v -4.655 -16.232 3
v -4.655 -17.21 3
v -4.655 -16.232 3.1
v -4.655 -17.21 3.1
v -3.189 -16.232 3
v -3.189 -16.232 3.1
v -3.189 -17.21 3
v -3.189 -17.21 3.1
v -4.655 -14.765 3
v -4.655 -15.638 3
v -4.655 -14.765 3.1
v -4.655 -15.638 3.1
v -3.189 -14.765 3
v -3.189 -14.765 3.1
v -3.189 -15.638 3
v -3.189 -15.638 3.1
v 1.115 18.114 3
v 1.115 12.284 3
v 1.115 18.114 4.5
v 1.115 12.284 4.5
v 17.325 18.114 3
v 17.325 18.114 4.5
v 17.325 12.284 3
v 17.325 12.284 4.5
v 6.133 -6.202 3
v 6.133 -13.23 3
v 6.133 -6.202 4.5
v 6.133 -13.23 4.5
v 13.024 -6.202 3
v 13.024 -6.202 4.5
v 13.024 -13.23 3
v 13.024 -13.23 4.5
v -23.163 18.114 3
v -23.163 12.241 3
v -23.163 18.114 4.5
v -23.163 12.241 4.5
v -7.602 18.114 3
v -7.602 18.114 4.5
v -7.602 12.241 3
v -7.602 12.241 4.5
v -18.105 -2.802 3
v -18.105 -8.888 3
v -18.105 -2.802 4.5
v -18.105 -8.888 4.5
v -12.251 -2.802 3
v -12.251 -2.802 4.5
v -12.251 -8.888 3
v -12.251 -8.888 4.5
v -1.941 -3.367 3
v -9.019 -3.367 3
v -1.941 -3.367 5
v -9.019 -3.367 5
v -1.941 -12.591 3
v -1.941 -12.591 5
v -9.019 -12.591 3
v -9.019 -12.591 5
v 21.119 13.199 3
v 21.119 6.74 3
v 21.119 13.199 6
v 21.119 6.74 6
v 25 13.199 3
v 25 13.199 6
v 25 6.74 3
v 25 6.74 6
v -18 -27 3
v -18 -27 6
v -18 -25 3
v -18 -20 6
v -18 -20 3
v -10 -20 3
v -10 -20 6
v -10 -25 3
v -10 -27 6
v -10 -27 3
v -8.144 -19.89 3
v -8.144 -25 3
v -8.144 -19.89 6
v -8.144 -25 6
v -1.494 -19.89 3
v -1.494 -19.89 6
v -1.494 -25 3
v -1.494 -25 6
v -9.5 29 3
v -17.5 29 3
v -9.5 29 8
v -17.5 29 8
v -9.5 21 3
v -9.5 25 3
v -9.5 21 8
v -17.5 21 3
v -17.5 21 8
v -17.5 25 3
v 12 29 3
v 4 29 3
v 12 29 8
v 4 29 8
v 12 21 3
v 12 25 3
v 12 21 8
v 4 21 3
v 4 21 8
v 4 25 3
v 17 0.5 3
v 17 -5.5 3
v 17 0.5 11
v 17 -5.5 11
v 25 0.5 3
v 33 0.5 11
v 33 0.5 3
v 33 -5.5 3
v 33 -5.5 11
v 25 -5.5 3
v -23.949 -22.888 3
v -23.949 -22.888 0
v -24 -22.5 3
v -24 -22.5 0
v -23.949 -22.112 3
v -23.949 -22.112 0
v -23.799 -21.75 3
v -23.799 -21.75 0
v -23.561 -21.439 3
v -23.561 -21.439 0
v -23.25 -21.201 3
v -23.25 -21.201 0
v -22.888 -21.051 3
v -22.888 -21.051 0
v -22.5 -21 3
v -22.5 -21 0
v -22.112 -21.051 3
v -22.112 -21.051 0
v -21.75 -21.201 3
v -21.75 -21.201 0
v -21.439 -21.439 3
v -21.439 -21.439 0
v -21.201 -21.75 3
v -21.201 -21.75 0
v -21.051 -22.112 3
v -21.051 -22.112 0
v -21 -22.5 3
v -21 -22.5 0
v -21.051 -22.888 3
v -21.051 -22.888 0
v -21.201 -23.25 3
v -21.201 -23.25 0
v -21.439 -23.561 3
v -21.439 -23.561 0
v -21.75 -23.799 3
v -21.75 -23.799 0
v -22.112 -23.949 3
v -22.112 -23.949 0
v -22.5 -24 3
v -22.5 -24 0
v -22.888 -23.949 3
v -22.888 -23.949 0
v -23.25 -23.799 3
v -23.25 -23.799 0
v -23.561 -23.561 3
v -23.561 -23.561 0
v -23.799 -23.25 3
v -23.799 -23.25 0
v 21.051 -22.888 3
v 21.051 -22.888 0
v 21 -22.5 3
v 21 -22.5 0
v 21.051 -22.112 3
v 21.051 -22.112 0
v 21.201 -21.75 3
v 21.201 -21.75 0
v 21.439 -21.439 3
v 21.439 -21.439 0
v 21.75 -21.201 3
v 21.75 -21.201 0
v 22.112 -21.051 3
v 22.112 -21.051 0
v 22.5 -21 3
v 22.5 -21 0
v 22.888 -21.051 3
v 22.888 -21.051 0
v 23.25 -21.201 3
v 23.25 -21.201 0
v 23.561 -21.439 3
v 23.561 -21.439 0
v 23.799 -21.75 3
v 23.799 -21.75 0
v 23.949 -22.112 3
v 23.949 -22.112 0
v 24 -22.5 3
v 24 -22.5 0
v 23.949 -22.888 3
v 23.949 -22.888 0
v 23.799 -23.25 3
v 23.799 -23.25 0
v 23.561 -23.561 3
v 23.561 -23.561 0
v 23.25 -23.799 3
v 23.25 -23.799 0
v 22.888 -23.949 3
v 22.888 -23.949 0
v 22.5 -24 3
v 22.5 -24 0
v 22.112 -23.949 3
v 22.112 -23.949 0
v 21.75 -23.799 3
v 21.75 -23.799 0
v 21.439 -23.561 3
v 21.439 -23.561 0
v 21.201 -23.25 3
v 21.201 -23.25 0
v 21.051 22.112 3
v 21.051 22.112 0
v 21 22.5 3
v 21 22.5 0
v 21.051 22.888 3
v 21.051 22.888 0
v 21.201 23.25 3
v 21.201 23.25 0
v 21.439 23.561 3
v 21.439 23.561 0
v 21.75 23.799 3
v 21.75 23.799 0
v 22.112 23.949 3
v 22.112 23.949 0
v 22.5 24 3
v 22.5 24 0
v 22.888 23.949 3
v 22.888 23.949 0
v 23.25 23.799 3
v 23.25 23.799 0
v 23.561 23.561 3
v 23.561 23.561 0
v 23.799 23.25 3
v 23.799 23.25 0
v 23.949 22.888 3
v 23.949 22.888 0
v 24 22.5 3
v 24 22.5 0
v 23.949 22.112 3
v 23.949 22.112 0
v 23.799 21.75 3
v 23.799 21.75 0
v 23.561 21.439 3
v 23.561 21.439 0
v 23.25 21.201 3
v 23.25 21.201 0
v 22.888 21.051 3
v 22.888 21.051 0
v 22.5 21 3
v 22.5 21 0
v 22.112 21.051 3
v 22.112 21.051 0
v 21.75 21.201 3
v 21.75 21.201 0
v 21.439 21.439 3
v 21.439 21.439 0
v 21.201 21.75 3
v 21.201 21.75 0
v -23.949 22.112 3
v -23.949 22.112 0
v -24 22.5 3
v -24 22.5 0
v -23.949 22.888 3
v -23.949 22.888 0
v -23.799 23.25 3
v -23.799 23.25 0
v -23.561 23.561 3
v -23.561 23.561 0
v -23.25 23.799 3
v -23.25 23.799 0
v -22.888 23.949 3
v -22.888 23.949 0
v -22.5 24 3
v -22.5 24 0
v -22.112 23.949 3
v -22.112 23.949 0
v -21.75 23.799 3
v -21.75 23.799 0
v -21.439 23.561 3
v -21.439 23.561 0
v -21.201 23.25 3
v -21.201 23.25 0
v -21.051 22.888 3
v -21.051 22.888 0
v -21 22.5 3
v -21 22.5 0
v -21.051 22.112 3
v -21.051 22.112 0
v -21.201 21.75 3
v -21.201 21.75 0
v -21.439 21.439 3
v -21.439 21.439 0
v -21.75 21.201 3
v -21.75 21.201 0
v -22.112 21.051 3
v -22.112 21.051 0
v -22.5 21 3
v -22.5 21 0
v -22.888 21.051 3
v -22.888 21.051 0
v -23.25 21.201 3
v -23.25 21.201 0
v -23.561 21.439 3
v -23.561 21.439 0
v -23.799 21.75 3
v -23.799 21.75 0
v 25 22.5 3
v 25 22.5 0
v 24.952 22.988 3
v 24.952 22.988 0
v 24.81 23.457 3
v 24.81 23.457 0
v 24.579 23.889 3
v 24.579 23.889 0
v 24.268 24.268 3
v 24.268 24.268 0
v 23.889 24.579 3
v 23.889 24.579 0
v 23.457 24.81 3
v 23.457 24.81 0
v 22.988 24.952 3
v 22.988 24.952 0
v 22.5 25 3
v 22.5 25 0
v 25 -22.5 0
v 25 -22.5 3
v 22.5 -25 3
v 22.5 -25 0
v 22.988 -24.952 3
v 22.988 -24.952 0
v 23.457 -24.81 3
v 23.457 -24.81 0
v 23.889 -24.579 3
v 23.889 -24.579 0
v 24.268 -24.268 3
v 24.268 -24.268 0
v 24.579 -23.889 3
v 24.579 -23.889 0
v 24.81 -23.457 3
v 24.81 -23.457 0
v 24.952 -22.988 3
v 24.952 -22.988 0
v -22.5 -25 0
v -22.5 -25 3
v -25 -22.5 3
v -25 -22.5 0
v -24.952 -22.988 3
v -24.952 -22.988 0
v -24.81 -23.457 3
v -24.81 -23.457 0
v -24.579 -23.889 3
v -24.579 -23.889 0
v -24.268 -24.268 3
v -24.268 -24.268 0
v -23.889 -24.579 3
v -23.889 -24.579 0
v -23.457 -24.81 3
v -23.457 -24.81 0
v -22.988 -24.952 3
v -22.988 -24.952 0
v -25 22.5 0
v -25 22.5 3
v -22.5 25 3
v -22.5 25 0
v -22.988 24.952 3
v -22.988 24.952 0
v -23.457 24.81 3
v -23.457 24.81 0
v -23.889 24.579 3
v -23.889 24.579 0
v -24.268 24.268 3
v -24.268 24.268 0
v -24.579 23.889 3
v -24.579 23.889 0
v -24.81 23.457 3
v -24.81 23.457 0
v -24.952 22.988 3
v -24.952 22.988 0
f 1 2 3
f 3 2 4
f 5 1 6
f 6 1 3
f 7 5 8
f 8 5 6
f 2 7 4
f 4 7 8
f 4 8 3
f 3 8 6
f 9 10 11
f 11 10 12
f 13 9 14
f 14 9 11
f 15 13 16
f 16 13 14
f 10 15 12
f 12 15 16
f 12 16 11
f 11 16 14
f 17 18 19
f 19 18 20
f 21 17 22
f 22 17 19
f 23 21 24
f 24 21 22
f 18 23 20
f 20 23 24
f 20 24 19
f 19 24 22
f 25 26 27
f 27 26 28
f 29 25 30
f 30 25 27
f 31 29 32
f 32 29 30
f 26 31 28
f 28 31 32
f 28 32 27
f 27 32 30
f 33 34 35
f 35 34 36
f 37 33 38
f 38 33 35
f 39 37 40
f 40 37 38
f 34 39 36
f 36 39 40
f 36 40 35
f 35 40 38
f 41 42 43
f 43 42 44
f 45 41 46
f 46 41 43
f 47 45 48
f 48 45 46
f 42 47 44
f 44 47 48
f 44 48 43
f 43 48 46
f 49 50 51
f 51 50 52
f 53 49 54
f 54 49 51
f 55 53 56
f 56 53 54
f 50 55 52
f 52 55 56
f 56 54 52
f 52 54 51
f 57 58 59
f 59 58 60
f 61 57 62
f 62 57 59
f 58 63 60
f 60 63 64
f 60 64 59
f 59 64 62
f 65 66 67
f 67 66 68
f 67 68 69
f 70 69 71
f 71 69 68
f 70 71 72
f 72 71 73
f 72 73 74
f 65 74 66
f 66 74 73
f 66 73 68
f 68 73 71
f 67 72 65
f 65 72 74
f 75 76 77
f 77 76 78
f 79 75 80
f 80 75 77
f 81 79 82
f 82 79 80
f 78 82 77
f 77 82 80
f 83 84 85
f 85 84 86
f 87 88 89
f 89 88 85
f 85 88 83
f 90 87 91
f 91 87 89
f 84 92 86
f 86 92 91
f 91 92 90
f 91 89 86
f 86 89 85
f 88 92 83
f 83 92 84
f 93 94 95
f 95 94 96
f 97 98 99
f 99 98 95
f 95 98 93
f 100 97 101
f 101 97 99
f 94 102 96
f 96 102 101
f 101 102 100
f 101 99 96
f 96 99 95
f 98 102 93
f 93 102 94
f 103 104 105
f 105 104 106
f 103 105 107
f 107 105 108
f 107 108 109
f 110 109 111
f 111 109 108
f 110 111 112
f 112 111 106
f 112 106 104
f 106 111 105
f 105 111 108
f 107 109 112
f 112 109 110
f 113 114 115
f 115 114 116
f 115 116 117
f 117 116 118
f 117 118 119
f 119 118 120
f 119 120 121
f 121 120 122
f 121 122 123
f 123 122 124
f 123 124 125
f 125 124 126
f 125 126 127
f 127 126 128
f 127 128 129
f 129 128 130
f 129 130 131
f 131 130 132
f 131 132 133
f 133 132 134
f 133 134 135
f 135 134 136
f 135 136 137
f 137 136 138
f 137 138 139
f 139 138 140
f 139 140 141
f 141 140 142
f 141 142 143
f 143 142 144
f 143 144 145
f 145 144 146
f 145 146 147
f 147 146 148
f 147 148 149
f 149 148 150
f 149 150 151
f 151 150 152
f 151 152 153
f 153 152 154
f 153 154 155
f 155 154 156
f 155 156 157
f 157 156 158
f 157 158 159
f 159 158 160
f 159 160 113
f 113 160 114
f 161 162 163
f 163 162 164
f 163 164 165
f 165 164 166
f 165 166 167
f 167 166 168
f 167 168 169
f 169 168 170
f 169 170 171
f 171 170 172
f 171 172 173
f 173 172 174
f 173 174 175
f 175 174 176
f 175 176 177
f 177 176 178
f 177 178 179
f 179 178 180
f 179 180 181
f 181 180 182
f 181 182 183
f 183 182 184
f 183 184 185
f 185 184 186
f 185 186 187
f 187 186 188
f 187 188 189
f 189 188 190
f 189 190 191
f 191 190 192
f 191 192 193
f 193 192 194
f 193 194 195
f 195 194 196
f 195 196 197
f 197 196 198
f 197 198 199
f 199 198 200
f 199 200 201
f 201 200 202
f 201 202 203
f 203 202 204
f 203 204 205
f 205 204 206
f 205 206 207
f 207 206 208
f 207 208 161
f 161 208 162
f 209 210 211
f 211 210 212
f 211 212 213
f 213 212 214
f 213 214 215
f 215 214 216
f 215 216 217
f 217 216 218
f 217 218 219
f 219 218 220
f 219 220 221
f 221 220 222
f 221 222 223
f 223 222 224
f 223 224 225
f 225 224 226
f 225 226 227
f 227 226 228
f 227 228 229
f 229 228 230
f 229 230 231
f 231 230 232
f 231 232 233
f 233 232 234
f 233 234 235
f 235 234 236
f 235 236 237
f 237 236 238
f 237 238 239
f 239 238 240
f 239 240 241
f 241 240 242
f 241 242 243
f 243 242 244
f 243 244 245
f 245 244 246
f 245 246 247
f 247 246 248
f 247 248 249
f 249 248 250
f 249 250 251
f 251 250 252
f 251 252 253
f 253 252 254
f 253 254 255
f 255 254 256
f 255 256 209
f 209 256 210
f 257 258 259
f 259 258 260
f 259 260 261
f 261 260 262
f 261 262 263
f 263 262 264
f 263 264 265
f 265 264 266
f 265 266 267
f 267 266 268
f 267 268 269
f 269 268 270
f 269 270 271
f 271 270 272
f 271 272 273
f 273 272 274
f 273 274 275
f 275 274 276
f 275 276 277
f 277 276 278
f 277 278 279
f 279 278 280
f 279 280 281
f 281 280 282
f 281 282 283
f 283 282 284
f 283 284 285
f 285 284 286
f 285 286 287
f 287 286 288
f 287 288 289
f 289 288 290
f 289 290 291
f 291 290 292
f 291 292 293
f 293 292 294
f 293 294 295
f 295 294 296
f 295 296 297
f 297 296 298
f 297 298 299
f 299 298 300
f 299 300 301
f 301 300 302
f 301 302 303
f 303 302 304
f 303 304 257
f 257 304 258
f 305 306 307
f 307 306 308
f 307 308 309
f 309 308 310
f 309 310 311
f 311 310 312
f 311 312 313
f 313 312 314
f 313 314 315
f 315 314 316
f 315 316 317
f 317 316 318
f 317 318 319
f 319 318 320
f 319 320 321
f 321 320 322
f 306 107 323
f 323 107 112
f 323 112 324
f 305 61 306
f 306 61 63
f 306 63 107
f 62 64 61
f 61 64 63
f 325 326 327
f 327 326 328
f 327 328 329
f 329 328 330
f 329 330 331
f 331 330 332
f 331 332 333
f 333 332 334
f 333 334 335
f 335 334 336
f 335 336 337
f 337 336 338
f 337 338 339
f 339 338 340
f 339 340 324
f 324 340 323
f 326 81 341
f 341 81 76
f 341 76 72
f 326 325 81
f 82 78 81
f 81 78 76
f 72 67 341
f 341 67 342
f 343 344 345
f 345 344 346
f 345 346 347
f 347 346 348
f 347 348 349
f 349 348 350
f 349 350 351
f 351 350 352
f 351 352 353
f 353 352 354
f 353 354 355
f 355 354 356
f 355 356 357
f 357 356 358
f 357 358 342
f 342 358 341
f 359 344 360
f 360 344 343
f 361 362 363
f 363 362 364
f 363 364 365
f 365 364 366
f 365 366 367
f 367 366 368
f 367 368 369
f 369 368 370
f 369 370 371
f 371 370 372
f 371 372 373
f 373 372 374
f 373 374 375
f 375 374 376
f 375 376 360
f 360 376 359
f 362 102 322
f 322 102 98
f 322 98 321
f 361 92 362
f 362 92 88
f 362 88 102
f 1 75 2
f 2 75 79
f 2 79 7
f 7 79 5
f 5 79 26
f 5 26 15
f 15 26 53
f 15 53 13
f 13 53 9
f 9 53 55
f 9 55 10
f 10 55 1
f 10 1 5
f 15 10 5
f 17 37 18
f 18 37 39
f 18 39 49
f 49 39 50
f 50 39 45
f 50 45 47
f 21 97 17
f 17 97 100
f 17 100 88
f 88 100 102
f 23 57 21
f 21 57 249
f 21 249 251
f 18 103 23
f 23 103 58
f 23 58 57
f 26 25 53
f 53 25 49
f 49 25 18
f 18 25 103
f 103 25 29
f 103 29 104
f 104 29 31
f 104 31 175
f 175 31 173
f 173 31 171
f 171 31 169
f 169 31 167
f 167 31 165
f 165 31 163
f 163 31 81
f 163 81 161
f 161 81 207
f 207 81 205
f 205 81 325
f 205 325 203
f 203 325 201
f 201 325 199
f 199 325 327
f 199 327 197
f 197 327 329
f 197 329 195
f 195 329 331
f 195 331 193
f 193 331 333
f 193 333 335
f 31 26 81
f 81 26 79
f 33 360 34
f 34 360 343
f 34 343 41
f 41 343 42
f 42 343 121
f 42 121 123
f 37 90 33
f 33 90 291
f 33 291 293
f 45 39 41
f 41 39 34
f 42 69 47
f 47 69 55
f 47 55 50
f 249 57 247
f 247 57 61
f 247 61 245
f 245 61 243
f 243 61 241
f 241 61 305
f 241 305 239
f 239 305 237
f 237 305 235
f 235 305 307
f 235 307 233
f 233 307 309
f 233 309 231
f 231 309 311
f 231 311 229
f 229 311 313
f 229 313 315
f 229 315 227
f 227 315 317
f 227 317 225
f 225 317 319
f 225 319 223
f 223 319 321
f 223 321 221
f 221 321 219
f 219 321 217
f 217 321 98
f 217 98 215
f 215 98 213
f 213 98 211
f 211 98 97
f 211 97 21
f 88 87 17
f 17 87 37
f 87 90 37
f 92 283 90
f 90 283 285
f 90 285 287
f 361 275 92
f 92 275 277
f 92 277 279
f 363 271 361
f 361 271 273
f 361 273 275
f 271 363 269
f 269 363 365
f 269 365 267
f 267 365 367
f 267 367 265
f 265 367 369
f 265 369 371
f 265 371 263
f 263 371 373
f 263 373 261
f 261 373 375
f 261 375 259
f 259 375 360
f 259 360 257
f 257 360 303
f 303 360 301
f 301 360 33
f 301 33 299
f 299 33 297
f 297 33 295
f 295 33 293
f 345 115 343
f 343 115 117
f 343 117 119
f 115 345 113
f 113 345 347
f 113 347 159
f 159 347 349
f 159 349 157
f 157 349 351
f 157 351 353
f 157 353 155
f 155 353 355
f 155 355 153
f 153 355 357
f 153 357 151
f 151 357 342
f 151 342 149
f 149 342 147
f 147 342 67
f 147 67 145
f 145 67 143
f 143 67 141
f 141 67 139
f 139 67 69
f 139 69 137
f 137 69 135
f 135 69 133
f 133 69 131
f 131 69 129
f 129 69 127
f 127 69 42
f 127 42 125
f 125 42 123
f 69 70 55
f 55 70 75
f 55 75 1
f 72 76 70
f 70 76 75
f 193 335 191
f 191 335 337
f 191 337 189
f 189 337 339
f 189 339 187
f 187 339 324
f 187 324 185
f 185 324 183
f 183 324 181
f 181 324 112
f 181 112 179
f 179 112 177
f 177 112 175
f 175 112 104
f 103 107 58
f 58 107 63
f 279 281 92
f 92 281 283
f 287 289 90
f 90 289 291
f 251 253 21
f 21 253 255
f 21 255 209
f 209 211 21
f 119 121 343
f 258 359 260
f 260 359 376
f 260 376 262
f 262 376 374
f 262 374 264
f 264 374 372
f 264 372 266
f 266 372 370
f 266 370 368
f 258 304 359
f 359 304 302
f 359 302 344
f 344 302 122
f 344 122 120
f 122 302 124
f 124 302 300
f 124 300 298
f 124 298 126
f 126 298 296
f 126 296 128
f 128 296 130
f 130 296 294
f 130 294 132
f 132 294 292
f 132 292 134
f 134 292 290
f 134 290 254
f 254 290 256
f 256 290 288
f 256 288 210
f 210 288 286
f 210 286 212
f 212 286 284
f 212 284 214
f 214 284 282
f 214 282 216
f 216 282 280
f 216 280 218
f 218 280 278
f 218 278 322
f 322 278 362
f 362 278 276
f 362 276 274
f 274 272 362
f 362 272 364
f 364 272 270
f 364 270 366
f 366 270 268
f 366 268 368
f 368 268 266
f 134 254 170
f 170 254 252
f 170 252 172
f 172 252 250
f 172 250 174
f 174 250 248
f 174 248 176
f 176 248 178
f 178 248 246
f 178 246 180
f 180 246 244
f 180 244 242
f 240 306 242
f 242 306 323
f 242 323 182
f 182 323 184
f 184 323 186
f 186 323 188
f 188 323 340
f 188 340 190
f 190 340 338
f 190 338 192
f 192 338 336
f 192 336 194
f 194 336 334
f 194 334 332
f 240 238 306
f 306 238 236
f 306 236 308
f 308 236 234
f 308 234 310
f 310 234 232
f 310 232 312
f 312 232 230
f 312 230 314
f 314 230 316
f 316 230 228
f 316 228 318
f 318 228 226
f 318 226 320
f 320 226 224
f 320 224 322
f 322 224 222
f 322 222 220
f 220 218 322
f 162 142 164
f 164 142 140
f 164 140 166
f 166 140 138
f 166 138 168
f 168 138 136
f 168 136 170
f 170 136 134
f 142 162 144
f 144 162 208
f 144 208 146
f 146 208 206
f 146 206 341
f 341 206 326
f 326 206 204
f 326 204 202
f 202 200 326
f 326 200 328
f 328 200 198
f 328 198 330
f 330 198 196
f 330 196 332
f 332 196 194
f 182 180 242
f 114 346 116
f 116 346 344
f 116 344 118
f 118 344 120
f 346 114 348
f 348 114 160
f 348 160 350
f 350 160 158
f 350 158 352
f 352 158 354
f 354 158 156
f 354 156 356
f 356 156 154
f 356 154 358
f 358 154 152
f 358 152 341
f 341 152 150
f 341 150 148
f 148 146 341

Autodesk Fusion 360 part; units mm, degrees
sketch "Sketch1" plane through (0, 0, 0) normal (0, 0, 1) x (1, 0, 0)
  line L0 (-25, 25) -> (25, 25) construction
  line L1 (25, 25) -> (25, -25) construction
  line L2 (25, -25) -> (-25, -25) construction
  line L3 (-25, -25) -> (-25, 25) construction
  line L4 (-25, 25) -> (25, -25) construction
  line L5 (25, 25) -> (-25, -25) construction
  line L6 (24, 24) -> (-24, 24) construction
  line L7 (-24, 24) -> (-24, -24) construction
  line L8 (-24, -24) -> (24, -24) construction
  line L9 (24, -24) -> (24, 24) construction
  line L10 (24, 24) -> (-24, -24) construction
  line L11 (-24, 24) -> (24, -24) construction
  circle A0 centre (-22.5, 22.5) radius 1.5
  line L12 (0, 24) -> (0, -24)
  line L13 (-24, 0) -> (24, 0)
  circle A1 centre (-22.5, 22.5) radius 2.5 construction
  line L14 (-25, 0) -> (-25, 22.5)
  line L15 (0, 25) -> (-22.5, 25)
  arc A2 (-22.5, 25) -> (-25, 22.5) centre (-22.5, 22.5) ccw
  circle A3 centre (22.5, 22.5) radius 1.5
  arc A4 (25, 22.5) -> (22.5, 25) centre (22.5, 22.5) ccw
  line L16 (25, 0) -> (25, 22.5)
  line L17 (0, 25) -> (22.5, 25)
  circle A5 centre (-22.5, -22.5) radius 1.5
  arc A6 (-25, -22.5) -> (-22.5, -25) centre (-22.5, -22.5) ccw
  arc A7 (22.5, -25) -> (25, -22.5) centre (22.5, -22.5) ccw
  line L18 (25, 0) -> (25, -22.5)
  line L19 (0, -25) -> (-22.5, -25)
  line L20 (0, -25) -> (22.5, -25)
  line L21 (-25, 0) -> (-25, -22.5)
  circle A8 centre (22.5, -22.5) radius 1.5
  dimension "d1" = 50
  dimension "d2" = 50
  dimension "d3" = 48
  dimension "d4" = 48
  dimension "d5" = 1.5
extrude "Extrude1" add sketch "Sketch1" along normal blind 3
sketch "Sketch2" plane through (0, 0, 3) normal (0, 0, 1) x (-1, 0, 0)
  circle A0 centre (22.5, -22.5) radius 1.5
  circle A1 centre (-22.5, -22.5) radius 1.5
  circle A2 centre (-22.5, 22.5) radius 1.5
  circle A3 centre (22.5, 22.5) radius 1.5
  line L0 (-22.5, -25) -> (22.5, -25)
  arc A4 (22.5, -25) -> (25, -22.5) centre (22.5, -22.5) ccw
  line L1 (25, -22.5) -> (25, 22.5)
  arc A5 (25, 22.5) -> (22.5, 25) centre (22.5, 22.5) ccw
  line L2 (22.5, 25) -> (-22.5, 25)
  arc A6 (-22.5, 25) -> (-25, 22.5) centre (-22.5, 22.5) ccw
  line L3 (-25, 22.5) -> (-25, -22.5)
  arc A7 (-25, -22.5) -> (-22.5, -25) centre (-22.5, -22.5) ccw
  line L4 (18, 20) -> (10, 20)
  line L5 (10, 20) -> (10, 27)
  line L6 (10, 27) -> (18, 27)
  line L7 (18, 27) -> (18, 20)
  line L8 (8.1443, 19.89) -> (1.4935, 19.89)
  line L9 (1.4935, 19.89) -> (1.4935, 25)
  line L10 (1.4935, 25) -> (8.1443, 25)
  line L11 (8.1443, 25) -> (8.1443, 19.89)
  line L12 (-6.1327, 6.202) -> (-13.0241, 6.202)
  line L13 (-13.0241, 6.202) -> (-13.0241, 13.2304)
  line L14 (-13.0241, 13.2304) -> (-6.1327, 13.2304)
  line L15 (-6.1327, 13.2304) -> (-6.1327, 6.202)
  line L16 (9.0194, 12.5915) -> (1.9406, 12.5915)
  line L17 (1.9406, 12.5915) -> (1.9406, 3.3668)
  line L18 (1.9406, 3.3668) -> (9.0194, 3.3668)
  line L19 (9.0194, 3.3668) -> (9.0194, 12.5915)
  line L20 (18.1054, 2.8016) -> (12.2514, 2.8016)
  line L21 (12.2514, 2.8016) -> (12.2514, 8.8879)
  line L22 (12.2514, 8.8879) -> (18.1054, 8.8879)
  line L23 (18.1054, 8.8879) -> (18.1054, 2.8016)
  line L24 (23.1634, -18.1139) -> (7.6017, -18.1139)
  line L25 (7.6017, -18.1139) -> (7.6017, -12.2414)
  line L26 (7.6017, -12.2414) -> (23.1634, -12.2414)
  line L27 (23.1634, -12.2414) -> (23.1634, -18.1139)
  line L28 (-1.1153, -18.1139) -> (-17.3248, -18.1139)
  line L29 (-17.3248, -18.1139) -> (-17.3248, -12.2845)
  line L30 (-17.3248, -12.2845) -> (-1.1153, -12.2845)
  line L31 (-1.1153, -12.2845) -> (-1.1153, -18.1139)
  line L32 (17.5, -21) -> (9.5, -21)
  line L33 (9.5, -21) -> (9.5, -29)
  line L34 (9.5, -29) -> (17.5, -29)
  line L35 (17.5, -29) -> (17.5, -21)
  line L36 (-4, -21) -> (-12, -21)
  line L37 (-12, -21) -> (-12, -29)
  line L38 (-12, -29) -> (-4, -29)
  line L39 (-4, -29) -> (-4, -21)
  line L40 (-21.1194, -13.1989) -> (-25, -13.1989)
  line L41 (-25, -13.1989) -> (-25, -6.7401)
  line L42 (-25, -6.7401) -> (-21.1194, -6.7401)
  line L43 (-21.1194, -6.7401) -> (-21.1194, -13.1989)
  line L44 (-17, -0.5) -> (-33, -0.5)
  line L45 (-33, -0.5) -> (-33, 5.5)
  line L46 (-33, 5.5) -> (-17, 5.5)
  line L47 (-17, 5.5) -> (-17, -0.5)
  dimension "d8" = 2
  dimension "d9" = 7
  dimension "d10" = 8
  dimension "d11" = 7
  dimension "d12" = 4
  dimension "d13" = 8
  dimension "d14" = 8
  dimension "d15" = 8
  dimension "d16" = 7.5
  dimension "d17" = 13
  dimension "d18" = 8
  dimension "d19" = 6
  dimension "d20" = 16
  dimension "d21" = 19.5
extrude "Extrude2" add sketch "Sketch2" along normal blind 8 contours L3 L44 L45 L46 | L3 L44 L46 L47
extrude "Extrude3" add sketch "Sketch2" along normal blind 5 contours L0 L36 L37 L39 | L0 L37 L38 L39 | L0 L32 L33 L35 | L0 L33 L34 L35
extrude "Extrude4" add sketch "Sketch2" along normal blind 3 contours L3 L40 L41 L42 L43 | L2 L8 L9 L10 L11 | L2 L4 L5 L7 | L2 L5 L6 L7
extrude "Extrude5" add sketch "Sketch2" along normal blind 2 contours L16 L17 L18 L19
extrude "Extrude6" add sketch "Sketch2" along normal blind 1.5 contours L12 L13 L14 L15 | L20 L21 L22 L23 | L24 L25 L26 L27 | L28 L29 L30 L31
sketch "Sketch3" plane through (0, 0, 3) normal (0, 0, 1) x (-1, 0, 0)
  line L0 (-1.1153, -12.2845) -> (-1.1153, -18.1139)
  line L1 (-1.1153, -18.1139) -> (-17.3248, -18.1139)
  line L2 (-17.3248, -18.1139) -> (-17.3248, -12.2845)
  line L3 (-17.3248, -12.2845) -> (-1.1153, -12.2845)
  line L4 (-6.1327, 13.2304) -> (-6.1327, 6.202)
  line L5 (-6.1327, 6.202) -> (-13.0241, 6.202)
  line L6 (-13.0241, 6.202) -> (-13.0241, 13.2304)
  line L7 (-13.0241, 13.2304) -> (-6.1327, 13.2304)
  line L8 (23.1634, -12.2414) -> (23.1634, -18.1139)
  line L9 (23.1634, -18.1139) -> (7.6017, -18.1139)
  line L10 (7.6017, -18.1139) -> (7.6017, -12.2414)
  line L11 (7.6017, -12.2414) -> (23.1634, -12.2414)
  line L12 (18.1054, 8.8879) -> (18.1054, 2.8016)
  line L13 (18.1054, 2.8016) -> (12.2514, 2.8016)
  line L14 (12.2514, 2.8016) -> (12.2514, 8.8879)
  line L15 (12.2514, 8.8879) -> (18.1054, 8.8879)
  line L16 (9.0194, 3.3668) -> (1.9406, 3.3668)
  line L17 (1.9406, 3.3668) -> (1.9406, 12.5915)
  line L18 (1.9406, 12.5915) -> (9.0194, 12.5915)
  line L19 (9.0194, 12.5915) -> (9.0194, 3.3668)
  line L20 (-21.1194, -13.1989) -> (-25, -13.1989)
  line L21 (-25, -13.1989) -> (-25, -22.5)
  arc A0 (-25, -22.5) -> (-22.5, -25) centre (-22.5, -22.5) ccw
  line L22 (-22.5, -25) -> (-12, -25)
  line L23 (-12, -25) -> (-12, -21)
  line L24 (-12, -21) -> (-4, -21)
  line L25 (-4, -21) -> (-4, -25)
  line L26 (-4, -25) -> (9.5, -25)
  line L27 (9.5, -25) -> (9.5, -21)
  line L28 (9.5, -21) -> (17.5, -21)
  line L29 (17.5, -21) -> (17.5, -25)
  line L30 (17.5, -25) -> (22.5, -25)
  arc A1 (22.5, -25) -> (25, -22.5) centre (22.5, -22.5) ccw
  line L31 (25, -22.5) -> (25, 22.5)
  arc A2 (25, 22.5) -> (22.5, 25) centre (22.5, 22.5) ccw
  line L32 (22.5, 25) -> (18, 25)
  line L33 (18, 25) -> (18, 20)
  line L34 (18, 20) -> (10, 20)
  line L35 (10, 20) -> (10, 25)
  line L36 (10, 25) -> (8.1443, 25)
  line L37 (8.1443, 25) -> (8.1443, 19.89)
  line L38 (8.1443, 19.89) -> (1.4935, 19.89)
  line L39 (1.4935, 19.89) -> (1.4935, 25)
  line L40 (1.4935, 25) -> (-22.5, 25)
  arc A3 (-22.5, 25) -> (-25, 22.5) centre (-22.5, 22.5) ccw
  line L41 (-25, 22.5) -> (-25, 5.5)
  line L42 (-25, 5.5) -> (-17, 5.5)
  line L43 (-17, 5.5) -> (-17, -0.5)
  line L44 (-17, -0.5) -> (-25, -0.5)
  line L45 (-25, -0.5) -> (-25, -6.7401)
  line L46 (-25, -6.7401) -> (-21.1194, -6.7401)
  line L47 (-21.1194, -6.7401) -> (-21.1194, -13.1989)
  circle A4 centre (22.5, -22.5) radius 1.5
  circle A5 centre (-22.5, -22.5) radius 1.5
  circle A6 centre (-22.5, 22.5) radius 1.5
  circle A7 centre (22.5, 22.5) radius 1.5
  line L48 (4.6554, 14.7653) -> (3.1888, 14.7653)
  line L49 (3.1888, 14.7653) -> (3.1888, 15.6382)
  line L50 (3.1888, 15.6382) -> (4.6554, 15.6382)
  line L51 (4.6554, 15.6382) -> (4.6554, 14.7653)
  line L52 (4.6554, 16.2319) -> (3.1888, 16.2319)
  line L53 (3.1888, 16.2319) -> (3.1888, 17.2096)
  line L54 (3.1888, 17.2096) -> (4.6554, 17.2096)
  line L55 (4.6554, 17.2096) -> (4.6554, 16.2319)
extrude "Extrude7" add sketch "Sketch3" along normal blind 0.1 contours L48 L49 L50 L51 | L52 L53 L54 L55
equation "d15 = d14"
